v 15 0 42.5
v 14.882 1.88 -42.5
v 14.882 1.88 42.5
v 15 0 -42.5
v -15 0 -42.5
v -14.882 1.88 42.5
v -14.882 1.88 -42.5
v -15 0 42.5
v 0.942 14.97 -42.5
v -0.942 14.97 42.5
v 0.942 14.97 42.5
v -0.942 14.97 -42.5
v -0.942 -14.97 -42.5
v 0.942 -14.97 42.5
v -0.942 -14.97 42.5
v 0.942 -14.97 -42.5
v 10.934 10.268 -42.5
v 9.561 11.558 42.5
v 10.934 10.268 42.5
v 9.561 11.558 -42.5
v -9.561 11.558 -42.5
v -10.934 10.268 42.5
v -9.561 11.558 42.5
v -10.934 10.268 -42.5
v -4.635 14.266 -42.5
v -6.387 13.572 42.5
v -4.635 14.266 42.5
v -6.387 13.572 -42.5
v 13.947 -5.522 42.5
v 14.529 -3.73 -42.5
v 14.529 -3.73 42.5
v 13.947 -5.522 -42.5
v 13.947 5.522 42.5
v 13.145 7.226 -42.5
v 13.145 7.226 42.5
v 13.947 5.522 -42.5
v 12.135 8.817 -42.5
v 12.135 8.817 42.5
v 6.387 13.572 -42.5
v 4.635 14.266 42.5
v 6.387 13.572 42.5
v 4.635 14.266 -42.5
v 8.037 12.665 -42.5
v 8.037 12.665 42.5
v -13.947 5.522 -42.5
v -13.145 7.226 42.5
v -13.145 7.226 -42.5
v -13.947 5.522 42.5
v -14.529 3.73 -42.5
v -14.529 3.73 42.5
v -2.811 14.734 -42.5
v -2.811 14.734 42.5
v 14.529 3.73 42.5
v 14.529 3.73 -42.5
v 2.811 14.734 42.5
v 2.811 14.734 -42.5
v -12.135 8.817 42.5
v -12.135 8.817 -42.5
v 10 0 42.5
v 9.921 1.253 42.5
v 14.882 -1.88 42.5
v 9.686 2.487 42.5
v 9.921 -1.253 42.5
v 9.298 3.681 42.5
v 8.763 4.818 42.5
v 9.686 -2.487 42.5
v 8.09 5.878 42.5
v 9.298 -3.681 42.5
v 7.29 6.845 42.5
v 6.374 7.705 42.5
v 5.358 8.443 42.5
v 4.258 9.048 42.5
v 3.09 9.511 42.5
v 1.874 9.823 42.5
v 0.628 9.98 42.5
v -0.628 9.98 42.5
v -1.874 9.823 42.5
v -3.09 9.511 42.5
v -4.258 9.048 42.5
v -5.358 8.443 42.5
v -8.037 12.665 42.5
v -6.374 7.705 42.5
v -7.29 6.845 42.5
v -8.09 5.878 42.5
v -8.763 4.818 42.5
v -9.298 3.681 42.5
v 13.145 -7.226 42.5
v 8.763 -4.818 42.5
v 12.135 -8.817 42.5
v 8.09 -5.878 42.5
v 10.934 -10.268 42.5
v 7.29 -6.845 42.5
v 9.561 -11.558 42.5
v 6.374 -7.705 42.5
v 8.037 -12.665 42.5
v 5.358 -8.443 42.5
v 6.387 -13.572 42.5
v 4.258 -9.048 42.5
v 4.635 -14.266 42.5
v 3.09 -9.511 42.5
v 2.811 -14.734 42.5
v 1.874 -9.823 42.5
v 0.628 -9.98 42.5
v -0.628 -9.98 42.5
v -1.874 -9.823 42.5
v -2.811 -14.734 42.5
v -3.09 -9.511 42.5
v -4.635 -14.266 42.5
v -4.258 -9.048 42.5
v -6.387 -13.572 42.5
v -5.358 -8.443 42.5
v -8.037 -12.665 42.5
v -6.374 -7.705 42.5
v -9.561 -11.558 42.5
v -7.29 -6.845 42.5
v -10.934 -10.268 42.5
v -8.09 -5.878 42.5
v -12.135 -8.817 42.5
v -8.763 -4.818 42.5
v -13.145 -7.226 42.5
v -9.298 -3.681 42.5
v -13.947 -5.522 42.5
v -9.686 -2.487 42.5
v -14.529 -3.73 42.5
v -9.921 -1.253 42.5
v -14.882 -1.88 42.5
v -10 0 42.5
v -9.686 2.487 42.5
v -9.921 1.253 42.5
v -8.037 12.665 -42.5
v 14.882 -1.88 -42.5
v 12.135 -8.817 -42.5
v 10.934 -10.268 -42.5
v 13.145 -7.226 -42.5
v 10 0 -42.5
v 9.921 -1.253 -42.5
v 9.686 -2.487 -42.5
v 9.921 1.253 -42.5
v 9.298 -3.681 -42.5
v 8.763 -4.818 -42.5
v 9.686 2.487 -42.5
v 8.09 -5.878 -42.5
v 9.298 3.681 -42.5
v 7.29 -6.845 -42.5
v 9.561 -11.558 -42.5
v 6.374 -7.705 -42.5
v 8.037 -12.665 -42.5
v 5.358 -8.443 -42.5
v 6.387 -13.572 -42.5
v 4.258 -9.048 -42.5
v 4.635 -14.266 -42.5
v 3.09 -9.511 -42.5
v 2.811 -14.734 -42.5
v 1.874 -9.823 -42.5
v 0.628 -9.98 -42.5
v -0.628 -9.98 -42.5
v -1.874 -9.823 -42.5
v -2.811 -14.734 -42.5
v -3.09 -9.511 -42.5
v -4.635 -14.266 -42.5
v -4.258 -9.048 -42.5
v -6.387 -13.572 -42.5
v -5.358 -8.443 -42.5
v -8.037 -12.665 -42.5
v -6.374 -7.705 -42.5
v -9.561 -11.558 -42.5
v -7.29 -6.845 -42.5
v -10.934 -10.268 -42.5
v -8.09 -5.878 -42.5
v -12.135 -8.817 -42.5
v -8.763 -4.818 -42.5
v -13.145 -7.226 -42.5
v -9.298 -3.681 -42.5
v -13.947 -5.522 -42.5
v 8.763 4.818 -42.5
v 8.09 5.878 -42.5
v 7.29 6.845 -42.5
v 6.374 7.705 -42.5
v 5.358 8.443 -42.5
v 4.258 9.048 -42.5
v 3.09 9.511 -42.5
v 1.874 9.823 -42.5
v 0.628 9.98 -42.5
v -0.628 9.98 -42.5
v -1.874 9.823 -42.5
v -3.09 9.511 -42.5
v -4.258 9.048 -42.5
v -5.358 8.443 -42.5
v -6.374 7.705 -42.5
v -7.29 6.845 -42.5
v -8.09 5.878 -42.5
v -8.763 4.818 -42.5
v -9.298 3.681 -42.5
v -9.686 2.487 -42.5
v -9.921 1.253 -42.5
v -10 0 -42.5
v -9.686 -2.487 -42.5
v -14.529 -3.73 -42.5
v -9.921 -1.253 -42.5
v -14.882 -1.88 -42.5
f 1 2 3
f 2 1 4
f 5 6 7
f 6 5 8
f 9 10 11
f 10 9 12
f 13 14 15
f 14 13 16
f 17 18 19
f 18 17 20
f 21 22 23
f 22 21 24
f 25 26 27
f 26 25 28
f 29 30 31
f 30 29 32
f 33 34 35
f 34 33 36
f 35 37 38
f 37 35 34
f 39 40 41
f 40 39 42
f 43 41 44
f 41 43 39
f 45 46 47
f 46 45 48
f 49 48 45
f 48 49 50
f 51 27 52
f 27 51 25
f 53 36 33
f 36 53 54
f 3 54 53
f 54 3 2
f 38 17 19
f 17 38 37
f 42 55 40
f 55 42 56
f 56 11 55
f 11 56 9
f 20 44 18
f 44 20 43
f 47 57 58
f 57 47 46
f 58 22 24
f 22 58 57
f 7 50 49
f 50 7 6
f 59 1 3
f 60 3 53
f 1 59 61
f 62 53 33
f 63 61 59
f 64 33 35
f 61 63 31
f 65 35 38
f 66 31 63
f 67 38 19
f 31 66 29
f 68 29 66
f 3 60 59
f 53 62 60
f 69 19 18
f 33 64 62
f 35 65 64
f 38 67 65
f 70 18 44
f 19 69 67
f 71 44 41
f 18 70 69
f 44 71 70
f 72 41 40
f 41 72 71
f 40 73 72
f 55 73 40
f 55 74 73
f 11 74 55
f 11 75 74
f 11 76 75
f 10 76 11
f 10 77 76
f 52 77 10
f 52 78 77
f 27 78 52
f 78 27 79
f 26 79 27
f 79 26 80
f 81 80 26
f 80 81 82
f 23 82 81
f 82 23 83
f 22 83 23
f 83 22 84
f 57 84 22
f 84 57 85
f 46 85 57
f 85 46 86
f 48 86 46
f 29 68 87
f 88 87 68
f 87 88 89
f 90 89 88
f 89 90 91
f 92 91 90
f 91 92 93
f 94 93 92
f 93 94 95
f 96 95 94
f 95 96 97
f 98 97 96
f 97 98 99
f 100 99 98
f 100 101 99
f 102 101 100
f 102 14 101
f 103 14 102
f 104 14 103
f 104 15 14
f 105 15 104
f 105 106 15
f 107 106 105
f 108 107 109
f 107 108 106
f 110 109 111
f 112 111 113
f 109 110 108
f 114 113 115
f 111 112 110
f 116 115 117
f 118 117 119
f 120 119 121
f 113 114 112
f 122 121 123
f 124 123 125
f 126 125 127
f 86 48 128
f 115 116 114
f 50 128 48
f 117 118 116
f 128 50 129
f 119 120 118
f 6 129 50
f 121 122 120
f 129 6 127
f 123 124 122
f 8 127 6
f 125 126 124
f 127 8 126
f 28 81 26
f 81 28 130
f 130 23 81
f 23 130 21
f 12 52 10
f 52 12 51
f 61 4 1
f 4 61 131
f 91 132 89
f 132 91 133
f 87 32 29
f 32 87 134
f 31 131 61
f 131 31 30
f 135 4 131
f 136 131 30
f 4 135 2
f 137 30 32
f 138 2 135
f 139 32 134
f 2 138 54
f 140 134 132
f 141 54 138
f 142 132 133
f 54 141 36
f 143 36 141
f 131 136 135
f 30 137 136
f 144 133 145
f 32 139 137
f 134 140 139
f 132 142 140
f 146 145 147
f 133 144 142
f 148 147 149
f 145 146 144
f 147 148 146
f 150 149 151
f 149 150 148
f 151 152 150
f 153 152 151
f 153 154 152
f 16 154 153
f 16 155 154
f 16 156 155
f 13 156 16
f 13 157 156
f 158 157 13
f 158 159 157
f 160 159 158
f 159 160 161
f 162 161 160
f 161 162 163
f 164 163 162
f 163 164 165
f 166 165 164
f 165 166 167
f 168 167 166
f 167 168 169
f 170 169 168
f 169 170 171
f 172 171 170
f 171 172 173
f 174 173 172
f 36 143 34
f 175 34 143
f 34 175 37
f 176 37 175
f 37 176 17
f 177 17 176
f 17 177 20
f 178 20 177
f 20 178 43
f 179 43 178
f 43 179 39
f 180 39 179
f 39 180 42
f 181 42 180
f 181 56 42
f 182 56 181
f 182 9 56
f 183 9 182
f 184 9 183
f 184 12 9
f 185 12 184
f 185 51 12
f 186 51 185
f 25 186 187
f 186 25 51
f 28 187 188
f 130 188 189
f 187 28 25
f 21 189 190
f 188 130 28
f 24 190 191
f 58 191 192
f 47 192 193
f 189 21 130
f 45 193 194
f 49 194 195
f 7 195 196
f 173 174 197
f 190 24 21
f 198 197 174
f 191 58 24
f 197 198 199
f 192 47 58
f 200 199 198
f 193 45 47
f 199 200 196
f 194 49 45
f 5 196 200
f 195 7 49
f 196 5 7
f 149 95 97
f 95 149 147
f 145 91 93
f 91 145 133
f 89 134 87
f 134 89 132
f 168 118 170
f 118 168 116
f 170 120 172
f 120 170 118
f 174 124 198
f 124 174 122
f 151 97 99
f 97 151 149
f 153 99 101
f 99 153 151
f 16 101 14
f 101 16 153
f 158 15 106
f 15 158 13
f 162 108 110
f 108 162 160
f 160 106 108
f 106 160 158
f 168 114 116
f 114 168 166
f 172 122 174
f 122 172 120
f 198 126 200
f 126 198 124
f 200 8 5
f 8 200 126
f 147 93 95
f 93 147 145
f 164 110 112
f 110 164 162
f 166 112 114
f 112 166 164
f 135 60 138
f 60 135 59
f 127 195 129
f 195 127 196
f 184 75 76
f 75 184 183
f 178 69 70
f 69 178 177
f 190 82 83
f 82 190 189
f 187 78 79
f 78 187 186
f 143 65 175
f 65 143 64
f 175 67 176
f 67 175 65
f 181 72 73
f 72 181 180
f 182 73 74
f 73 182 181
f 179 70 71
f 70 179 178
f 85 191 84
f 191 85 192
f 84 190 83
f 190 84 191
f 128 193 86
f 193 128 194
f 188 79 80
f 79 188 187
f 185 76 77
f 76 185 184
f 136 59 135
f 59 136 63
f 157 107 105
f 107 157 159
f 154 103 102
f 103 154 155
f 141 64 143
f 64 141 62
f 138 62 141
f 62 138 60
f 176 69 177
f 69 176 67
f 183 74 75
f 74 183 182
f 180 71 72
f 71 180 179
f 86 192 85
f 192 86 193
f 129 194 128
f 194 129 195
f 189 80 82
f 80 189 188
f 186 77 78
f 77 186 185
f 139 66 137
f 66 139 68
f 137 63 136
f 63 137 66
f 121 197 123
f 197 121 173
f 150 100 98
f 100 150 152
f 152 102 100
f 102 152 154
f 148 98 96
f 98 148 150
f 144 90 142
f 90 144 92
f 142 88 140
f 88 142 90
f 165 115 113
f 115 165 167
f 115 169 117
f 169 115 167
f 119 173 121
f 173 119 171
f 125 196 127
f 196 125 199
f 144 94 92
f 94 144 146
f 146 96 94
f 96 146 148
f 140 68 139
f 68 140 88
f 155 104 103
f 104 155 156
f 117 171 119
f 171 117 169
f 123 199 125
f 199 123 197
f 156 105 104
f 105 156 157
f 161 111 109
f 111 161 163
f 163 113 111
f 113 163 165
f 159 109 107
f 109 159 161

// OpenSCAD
$fn = 50;


difference() {
	union() {
		translate(v = [0, 0, -42.5000000000]) {
			cylinder(h = 85, r = 15.0000000000);
		}
	}
	union() {
		translate(v = [0, 0, -100.0000000000]) {
			cylinder(h = 200, r = 10);
		}
	}
}
